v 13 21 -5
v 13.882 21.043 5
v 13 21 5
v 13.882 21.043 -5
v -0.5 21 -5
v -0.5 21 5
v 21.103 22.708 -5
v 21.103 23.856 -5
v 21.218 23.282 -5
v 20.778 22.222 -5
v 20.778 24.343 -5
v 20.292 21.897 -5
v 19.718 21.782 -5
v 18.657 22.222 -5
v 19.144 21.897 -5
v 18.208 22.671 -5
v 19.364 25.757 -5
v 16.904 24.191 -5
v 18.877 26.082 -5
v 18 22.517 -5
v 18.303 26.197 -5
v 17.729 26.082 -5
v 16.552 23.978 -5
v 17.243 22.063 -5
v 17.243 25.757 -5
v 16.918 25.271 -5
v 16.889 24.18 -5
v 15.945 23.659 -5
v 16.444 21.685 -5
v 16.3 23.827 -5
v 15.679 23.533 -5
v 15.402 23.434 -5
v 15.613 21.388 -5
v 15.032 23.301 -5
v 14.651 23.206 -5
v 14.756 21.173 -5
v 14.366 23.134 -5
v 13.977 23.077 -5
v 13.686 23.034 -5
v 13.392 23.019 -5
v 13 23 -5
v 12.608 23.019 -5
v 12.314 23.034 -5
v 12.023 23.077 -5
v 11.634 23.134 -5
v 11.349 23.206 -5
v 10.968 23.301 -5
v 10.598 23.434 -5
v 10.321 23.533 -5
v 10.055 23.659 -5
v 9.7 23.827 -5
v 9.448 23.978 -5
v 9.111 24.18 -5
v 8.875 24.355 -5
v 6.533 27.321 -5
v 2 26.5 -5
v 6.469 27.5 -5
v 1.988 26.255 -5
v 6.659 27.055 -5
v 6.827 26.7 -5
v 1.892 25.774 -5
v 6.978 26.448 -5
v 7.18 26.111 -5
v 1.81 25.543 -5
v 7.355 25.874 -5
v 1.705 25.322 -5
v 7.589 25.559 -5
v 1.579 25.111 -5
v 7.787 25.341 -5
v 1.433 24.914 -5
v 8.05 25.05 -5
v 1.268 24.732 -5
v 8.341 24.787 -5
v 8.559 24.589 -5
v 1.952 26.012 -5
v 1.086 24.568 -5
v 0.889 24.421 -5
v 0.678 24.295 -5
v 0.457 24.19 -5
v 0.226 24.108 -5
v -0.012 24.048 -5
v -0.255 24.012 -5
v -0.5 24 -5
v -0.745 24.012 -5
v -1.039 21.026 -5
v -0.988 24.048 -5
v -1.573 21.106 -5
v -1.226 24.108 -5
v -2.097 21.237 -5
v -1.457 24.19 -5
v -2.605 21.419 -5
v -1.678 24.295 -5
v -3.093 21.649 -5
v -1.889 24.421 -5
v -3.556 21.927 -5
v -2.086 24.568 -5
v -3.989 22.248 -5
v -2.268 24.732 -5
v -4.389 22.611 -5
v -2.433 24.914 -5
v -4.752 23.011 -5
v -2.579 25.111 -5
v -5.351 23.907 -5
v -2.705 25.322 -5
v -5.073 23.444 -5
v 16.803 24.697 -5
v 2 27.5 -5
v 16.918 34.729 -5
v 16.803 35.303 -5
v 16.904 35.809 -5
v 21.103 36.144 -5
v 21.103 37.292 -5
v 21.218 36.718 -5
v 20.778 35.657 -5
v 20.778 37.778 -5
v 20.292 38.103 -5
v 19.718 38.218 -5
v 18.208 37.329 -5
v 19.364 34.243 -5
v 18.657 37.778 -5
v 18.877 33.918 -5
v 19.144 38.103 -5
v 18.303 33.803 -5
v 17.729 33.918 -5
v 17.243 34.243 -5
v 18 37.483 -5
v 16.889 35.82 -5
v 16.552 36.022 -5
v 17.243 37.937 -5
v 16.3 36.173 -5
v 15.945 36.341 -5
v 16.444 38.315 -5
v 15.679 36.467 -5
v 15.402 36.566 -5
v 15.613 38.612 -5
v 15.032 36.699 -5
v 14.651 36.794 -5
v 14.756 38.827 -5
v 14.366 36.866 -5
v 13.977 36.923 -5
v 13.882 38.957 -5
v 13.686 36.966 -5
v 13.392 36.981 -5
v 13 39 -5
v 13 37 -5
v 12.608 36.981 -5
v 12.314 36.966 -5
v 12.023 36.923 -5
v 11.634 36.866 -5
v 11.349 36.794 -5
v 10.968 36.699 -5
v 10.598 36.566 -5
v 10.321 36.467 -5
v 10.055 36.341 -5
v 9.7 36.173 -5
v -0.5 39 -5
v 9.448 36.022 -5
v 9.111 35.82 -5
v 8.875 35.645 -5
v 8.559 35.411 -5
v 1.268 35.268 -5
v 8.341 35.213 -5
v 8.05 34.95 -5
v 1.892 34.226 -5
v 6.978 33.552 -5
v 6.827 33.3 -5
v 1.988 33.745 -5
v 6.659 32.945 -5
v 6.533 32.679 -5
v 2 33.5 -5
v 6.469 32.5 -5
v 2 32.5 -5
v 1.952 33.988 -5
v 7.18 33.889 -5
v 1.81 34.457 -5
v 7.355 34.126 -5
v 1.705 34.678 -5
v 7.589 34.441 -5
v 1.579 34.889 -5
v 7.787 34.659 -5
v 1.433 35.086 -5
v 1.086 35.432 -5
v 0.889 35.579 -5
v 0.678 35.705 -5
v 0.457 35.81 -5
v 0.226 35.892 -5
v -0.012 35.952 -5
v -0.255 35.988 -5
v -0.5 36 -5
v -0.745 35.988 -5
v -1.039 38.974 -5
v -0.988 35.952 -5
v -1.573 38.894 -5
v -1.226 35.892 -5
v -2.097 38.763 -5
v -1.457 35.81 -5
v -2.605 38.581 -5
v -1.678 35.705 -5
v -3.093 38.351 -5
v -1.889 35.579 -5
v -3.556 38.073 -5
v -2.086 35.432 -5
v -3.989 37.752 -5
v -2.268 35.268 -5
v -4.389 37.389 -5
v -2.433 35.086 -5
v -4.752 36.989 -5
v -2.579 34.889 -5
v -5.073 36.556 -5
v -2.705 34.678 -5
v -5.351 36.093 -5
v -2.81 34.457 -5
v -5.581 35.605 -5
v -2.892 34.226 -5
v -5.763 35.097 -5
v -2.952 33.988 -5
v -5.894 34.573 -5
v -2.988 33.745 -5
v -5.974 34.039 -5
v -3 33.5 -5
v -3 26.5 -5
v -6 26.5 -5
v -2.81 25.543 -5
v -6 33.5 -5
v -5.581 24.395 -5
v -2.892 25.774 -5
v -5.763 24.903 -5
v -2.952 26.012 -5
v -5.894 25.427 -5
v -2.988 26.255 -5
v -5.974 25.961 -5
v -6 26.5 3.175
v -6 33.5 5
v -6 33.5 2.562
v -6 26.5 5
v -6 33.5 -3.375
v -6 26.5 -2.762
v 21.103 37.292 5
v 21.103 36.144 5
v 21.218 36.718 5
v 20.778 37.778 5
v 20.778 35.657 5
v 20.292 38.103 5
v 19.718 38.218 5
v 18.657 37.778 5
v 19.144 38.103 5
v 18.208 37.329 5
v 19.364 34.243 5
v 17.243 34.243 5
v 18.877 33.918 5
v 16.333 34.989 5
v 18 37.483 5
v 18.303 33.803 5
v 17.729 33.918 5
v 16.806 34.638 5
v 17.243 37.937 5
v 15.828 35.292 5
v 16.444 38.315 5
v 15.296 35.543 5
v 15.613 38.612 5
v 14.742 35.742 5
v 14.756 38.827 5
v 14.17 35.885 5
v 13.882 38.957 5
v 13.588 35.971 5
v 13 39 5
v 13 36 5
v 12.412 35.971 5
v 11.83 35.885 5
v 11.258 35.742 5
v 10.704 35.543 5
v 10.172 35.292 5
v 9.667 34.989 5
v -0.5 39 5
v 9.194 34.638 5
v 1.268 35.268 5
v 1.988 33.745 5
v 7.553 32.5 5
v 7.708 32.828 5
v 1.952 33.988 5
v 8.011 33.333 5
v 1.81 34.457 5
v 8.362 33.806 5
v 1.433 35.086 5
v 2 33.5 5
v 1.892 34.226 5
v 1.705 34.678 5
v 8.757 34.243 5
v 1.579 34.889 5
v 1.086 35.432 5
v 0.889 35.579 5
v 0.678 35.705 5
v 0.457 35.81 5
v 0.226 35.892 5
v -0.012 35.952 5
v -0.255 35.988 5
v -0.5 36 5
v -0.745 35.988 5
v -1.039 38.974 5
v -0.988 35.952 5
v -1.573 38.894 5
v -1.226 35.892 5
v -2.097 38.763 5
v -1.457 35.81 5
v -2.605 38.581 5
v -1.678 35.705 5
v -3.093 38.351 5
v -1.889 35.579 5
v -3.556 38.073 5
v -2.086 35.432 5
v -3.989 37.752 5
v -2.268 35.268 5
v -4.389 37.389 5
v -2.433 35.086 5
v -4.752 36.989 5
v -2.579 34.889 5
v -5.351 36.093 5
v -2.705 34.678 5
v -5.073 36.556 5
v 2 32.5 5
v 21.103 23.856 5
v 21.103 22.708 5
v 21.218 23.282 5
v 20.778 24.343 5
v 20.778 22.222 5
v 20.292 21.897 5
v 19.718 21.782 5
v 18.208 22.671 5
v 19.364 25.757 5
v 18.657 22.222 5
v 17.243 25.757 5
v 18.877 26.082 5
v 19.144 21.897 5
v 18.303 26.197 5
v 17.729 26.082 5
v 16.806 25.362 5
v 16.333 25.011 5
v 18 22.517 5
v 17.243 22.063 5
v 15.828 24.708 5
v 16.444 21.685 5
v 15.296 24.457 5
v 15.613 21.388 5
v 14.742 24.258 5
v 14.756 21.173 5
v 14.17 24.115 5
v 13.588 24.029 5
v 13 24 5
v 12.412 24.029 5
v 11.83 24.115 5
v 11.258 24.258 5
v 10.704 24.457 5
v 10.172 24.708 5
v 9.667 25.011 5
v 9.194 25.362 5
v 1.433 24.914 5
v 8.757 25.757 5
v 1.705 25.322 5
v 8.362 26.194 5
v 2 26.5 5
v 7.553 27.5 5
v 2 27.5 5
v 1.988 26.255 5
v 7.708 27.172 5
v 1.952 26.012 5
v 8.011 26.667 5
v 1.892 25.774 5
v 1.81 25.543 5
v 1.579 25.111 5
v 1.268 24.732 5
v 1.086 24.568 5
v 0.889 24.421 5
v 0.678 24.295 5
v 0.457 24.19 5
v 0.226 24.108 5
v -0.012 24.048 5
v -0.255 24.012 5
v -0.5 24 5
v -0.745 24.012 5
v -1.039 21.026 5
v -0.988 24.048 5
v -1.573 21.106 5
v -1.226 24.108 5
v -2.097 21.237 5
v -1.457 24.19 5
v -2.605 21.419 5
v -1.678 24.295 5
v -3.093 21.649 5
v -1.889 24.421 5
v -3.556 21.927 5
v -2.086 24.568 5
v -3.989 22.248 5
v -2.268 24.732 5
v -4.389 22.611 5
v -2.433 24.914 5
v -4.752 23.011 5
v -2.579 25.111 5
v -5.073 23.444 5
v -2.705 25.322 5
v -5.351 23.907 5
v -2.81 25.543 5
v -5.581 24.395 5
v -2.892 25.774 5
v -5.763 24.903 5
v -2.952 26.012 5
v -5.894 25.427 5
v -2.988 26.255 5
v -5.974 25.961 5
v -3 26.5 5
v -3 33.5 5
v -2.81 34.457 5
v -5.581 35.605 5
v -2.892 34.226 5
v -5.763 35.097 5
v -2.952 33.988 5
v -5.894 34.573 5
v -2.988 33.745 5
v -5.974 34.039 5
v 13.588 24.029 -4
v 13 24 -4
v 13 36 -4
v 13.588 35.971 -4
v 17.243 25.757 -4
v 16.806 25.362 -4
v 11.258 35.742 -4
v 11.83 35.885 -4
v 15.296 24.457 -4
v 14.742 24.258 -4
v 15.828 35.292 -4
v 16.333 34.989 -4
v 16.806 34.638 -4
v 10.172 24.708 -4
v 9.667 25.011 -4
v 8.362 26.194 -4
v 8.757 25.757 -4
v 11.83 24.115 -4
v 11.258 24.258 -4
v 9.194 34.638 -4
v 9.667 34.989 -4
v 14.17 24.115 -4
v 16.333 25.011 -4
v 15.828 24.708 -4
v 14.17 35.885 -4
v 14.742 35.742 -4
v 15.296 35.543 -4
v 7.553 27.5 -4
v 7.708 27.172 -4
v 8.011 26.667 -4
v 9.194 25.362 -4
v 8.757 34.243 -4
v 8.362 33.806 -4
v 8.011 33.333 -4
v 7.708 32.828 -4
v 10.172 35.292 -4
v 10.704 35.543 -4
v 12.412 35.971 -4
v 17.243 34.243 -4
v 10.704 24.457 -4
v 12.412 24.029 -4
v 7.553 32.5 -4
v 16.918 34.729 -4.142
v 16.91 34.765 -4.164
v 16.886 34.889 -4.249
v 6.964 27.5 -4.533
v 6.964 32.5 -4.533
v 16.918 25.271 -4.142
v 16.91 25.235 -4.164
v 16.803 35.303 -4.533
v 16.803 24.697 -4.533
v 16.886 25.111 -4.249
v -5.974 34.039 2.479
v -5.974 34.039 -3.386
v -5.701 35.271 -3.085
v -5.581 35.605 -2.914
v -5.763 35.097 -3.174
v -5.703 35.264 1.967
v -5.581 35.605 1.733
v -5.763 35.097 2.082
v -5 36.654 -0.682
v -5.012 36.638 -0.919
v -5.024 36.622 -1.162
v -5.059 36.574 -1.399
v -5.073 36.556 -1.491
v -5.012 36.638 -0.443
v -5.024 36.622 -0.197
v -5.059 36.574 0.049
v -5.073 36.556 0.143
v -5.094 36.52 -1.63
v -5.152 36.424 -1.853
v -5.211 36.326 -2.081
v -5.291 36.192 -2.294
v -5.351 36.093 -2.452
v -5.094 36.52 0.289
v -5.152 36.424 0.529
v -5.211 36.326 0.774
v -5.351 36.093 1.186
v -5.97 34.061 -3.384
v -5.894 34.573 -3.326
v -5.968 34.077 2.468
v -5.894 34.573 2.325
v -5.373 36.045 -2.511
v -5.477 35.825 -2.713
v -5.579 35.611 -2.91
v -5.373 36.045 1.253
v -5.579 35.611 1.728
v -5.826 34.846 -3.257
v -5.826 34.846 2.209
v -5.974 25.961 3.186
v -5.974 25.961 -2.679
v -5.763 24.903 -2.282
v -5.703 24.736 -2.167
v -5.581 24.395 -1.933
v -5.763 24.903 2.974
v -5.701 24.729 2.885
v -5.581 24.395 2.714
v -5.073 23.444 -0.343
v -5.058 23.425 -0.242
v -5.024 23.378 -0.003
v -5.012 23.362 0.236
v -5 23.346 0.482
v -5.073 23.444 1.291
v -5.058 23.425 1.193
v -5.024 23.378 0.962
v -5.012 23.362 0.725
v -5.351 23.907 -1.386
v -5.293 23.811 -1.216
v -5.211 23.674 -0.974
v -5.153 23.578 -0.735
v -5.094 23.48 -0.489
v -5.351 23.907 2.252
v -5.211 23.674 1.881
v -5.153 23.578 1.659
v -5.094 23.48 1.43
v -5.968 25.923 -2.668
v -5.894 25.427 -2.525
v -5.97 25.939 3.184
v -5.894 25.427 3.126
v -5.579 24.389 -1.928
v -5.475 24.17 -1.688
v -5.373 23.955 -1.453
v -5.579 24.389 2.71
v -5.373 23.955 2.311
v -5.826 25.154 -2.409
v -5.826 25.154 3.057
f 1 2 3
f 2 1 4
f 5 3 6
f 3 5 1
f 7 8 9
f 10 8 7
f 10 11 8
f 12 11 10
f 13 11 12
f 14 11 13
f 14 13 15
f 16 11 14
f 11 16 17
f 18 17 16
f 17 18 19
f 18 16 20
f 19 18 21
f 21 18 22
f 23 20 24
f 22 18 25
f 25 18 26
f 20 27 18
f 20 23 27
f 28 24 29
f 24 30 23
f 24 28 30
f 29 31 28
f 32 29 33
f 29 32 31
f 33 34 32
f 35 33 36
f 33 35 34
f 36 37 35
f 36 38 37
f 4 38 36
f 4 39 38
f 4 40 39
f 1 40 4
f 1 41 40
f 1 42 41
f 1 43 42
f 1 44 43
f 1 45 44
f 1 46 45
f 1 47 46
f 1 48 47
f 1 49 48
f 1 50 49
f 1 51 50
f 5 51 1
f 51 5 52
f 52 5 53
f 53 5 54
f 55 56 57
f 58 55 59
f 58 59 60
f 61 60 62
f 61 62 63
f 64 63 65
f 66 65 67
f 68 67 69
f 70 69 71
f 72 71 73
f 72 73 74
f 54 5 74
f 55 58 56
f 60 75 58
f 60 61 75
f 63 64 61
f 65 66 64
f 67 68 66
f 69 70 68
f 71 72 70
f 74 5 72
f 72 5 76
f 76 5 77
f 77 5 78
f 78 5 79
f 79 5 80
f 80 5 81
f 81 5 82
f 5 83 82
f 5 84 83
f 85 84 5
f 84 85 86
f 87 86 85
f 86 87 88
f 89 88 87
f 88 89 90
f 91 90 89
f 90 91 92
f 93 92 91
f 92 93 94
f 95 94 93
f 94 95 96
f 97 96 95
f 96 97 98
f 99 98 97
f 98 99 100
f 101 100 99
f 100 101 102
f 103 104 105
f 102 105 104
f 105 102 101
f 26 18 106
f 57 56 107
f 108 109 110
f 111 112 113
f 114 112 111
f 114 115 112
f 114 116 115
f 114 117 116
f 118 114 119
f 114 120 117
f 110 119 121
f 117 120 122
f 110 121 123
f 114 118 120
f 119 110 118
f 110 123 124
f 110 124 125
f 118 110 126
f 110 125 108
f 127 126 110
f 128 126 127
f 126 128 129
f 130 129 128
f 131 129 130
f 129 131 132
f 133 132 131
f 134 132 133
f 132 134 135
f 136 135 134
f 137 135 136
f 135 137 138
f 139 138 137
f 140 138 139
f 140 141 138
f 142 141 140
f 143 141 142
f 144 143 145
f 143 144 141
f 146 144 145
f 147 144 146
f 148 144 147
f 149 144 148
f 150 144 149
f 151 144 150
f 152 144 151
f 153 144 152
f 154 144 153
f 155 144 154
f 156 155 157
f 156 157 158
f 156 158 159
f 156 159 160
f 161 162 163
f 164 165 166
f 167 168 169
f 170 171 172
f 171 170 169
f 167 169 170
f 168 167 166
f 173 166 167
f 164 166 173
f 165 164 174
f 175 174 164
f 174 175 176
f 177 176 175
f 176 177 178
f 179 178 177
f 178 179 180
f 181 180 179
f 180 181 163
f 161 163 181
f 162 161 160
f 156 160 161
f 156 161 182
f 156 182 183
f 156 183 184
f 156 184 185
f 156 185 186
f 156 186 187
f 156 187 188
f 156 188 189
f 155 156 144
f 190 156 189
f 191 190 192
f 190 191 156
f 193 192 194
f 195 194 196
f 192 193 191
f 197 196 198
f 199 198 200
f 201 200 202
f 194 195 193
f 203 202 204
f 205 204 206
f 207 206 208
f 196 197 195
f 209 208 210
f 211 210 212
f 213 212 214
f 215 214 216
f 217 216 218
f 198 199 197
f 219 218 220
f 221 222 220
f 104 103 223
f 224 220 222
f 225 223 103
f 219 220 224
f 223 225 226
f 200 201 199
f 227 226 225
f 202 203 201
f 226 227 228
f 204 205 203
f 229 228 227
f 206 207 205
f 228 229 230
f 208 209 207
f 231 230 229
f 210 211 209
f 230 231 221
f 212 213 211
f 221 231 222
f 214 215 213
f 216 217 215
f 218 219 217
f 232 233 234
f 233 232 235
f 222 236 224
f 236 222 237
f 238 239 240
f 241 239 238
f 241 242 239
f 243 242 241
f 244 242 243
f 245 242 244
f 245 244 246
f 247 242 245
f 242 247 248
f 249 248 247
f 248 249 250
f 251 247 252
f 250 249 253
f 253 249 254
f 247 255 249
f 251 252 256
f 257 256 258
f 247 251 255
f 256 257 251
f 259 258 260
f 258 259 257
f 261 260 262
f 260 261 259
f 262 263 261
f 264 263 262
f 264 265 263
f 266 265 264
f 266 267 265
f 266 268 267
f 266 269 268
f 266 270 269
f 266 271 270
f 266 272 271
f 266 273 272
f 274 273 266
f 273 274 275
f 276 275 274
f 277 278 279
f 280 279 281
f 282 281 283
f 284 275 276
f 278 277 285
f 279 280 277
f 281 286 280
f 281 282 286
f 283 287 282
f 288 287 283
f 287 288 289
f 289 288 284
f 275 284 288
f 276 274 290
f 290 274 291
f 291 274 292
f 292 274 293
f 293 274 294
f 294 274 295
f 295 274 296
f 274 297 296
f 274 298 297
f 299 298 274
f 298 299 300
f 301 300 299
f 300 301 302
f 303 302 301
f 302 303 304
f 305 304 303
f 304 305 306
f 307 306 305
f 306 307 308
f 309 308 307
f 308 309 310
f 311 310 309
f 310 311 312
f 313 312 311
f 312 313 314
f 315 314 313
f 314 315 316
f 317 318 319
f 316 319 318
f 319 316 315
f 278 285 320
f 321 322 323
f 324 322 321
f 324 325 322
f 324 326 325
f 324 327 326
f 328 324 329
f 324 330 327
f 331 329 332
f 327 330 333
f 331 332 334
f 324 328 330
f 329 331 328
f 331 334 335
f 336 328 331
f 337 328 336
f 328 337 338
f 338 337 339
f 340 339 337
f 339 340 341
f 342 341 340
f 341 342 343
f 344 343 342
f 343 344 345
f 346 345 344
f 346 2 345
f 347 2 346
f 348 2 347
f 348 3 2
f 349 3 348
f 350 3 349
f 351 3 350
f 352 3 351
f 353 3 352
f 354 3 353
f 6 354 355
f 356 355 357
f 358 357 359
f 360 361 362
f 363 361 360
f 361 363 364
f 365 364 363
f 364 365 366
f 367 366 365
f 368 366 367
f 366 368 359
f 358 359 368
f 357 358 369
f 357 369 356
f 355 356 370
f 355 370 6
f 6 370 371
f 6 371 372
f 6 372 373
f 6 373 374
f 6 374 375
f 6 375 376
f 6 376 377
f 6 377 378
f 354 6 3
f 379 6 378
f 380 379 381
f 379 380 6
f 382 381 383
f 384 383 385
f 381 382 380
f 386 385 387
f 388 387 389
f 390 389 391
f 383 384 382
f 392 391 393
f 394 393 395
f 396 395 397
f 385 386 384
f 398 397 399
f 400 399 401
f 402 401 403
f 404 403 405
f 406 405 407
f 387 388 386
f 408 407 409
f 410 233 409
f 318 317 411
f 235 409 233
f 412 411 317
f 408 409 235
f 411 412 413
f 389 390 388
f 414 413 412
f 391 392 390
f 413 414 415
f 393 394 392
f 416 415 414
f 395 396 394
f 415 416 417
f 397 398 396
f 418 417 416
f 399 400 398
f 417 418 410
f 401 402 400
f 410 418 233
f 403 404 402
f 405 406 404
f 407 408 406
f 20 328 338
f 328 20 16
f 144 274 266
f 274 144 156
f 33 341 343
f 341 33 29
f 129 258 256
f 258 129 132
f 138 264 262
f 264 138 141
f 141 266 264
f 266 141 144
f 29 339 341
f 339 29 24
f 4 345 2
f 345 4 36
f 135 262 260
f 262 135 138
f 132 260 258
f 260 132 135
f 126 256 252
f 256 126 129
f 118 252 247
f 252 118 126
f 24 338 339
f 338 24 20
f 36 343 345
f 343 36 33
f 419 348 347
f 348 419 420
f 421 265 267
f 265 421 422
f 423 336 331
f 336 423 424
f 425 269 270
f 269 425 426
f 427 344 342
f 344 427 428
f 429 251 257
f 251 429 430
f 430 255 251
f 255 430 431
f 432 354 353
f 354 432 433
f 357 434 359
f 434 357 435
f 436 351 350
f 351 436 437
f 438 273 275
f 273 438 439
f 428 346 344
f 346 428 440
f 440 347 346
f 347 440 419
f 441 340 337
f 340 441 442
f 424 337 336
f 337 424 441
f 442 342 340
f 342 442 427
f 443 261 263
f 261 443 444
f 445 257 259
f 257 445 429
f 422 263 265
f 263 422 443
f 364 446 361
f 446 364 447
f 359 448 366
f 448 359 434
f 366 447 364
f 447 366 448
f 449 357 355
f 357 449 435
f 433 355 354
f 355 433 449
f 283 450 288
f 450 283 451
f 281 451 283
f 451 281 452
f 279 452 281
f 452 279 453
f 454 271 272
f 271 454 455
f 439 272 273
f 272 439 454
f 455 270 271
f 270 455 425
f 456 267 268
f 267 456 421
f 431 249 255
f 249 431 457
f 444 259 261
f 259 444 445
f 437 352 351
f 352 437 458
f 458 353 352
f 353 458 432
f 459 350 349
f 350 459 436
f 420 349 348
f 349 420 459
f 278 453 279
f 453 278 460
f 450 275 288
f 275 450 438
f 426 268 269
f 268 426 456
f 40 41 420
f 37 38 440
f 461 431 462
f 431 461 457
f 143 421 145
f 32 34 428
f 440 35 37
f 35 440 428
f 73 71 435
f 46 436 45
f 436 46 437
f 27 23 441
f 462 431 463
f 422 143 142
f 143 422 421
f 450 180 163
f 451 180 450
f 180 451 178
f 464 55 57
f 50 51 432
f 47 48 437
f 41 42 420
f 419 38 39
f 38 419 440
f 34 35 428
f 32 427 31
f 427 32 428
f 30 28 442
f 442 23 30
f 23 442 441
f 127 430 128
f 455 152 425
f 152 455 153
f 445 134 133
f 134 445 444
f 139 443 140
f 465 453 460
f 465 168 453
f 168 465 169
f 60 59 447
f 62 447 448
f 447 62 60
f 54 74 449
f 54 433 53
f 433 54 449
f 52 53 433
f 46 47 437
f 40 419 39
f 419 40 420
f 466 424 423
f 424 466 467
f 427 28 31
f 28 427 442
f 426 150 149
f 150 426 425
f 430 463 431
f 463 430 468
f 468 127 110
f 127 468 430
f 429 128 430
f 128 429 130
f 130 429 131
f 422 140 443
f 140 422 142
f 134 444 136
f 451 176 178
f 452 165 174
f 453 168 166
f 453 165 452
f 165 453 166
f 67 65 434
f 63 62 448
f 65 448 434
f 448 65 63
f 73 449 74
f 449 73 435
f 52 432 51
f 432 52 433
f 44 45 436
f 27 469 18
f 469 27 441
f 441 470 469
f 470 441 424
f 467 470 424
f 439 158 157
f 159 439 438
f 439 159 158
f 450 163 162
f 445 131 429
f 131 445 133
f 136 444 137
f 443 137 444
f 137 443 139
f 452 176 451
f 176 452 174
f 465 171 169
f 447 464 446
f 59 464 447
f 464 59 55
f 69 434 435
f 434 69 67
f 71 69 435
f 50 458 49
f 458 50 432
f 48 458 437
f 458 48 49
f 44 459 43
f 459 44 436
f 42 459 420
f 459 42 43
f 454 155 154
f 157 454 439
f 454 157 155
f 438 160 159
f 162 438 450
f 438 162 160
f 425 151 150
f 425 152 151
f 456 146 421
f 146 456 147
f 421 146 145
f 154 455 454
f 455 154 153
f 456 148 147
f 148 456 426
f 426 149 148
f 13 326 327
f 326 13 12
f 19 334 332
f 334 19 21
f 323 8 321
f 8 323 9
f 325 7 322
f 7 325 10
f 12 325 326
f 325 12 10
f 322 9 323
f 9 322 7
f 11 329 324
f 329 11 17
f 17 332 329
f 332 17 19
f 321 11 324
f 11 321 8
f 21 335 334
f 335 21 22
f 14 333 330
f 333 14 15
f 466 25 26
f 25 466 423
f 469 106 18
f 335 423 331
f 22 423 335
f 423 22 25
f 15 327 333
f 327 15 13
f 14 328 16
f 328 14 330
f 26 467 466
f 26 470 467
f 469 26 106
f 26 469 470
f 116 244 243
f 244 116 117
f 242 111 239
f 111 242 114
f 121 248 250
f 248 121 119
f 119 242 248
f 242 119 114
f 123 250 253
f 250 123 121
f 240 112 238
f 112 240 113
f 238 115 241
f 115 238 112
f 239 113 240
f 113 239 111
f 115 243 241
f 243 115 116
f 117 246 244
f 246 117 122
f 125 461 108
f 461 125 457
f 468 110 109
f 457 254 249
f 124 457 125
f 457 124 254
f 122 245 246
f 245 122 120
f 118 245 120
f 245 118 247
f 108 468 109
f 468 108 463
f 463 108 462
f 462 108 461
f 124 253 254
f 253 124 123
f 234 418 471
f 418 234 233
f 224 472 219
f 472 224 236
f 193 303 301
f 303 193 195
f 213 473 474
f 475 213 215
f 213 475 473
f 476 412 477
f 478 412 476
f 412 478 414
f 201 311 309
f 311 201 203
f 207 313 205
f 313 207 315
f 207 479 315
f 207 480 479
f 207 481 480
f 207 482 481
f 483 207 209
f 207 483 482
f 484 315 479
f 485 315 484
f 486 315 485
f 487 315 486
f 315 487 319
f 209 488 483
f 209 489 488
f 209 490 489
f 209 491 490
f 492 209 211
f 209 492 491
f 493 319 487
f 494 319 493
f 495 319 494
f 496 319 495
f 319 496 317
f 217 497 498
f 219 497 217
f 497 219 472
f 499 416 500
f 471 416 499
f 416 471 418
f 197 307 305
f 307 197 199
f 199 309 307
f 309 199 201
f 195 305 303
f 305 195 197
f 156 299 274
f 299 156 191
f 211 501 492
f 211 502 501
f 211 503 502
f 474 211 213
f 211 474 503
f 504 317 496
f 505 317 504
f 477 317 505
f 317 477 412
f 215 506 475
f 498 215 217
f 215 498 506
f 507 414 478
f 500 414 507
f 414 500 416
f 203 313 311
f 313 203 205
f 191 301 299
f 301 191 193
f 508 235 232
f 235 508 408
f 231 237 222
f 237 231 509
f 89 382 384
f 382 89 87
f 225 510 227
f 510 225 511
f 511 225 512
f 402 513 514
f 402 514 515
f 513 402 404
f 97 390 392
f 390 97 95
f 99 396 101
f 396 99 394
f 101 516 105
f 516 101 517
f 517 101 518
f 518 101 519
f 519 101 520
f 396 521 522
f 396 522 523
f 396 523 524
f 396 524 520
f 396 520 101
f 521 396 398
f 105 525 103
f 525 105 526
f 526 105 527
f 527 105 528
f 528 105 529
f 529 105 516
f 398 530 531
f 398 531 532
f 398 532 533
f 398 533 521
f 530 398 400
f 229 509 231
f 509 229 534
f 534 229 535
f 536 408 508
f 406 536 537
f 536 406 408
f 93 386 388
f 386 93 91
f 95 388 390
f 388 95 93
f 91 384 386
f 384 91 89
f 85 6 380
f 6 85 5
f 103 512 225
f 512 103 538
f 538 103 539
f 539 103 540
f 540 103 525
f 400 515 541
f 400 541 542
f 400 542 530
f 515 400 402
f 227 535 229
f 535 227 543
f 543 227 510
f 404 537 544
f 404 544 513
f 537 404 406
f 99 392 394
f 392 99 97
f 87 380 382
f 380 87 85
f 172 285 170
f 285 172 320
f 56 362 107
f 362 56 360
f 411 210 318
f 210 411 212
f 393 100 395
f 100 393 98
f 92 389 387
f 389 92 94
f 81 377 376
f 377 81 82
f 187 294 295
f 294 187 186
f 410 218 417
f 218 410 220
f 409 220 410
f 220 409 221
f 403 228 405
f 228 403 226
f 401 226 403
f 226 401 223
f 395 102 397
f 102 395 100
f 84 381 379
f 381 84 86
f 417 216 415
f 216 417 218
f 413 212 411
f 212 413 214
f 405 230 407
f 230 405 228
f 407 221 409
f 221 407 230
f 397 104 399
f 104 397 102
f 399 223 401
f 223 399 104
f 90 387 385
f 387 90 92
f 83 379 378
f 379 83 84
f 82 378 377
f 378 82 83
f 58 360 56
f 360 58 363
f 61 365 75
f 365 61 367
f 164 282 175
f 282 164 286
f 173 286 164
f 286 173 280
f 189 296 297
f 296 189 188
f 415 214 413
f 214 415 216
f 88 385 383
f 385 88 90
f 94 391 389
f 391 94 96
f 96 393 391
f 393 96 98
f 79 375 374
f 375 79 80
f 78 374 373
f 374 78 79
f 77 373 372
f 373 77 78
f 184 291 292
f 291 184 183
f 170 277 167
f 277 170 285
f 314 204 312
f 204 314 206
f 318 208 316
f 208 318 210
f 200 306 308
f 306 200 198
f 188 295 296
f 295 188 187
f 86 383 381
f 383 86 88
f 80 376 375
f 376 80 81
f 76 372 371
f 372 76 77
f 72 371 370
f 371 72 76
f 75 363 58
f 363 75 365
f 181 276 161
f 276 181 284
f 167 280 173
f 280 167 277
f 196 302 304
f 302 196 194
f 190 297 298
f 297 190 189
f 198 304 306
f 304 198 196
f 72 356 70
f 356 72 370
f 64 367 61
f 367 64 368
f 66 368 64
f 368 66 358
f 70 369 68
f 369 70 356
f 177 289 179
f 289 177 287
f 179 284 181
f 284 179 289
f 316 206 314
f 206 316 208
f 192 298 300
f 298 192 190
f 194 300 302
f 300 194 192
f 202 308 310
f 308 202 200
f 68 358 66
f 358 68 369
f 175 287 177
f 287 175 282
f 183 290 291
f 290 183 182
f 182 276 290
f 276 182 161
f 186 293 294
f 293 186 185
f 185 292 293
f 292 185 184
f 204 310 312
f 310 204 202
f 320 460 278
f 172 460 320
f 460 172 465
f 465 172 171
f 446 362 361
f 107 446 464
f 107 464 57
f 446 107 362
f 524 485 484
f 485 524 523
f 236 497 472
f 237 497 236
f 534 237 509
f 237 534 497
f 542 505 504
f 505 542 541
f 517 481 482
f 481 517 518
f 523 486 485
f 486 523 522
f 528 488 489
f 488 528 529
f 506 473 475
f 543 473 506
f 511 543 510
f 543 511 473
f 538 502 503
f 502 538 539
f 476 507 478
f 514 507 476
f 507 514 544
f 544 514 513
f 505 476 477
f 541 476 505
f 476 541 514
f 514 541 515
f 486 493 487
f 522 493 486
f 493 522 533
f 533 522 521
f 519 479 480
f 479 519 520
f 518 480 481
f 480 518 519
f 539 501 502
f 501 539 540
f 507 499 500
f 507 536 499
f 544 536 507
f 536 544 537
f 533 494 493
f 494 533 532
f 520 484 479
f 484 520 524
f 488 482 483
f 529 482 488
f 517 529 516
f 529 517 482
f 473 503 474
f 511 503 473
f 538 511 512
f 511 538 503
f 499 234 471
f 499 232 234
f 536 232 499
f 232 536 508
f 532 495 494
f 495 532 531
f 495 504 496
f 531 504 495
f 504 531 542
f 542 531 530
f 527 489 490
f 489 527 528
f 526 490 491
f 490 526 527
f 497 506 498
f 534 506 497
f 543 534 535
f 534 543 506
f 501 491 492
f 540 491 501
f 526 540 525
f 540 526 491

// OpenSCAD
// file: cylinder_clip.scad
use <../utilities.scad>;

module cylinder_clip(r=1,t=3,opening_angle=120,wing_length=2,wing_angle=45,flat_w=10,flat_t=3,h=10,$fn=$fn){
	union(){
		difference(){
			hull(){
				cylinder(r=r+t,$fn=$fn,h=h);
				translate([-flat_w/2,-r-flat_t,0]) cube([flat_w,0.1,h]);
			}
			cylinder(r=r,$fn=$fn,h=99999,center=true);
			cylinder(r1=r+2,r2=r,$fn=$fn,h=2,center=true);
			scale([tan(opening_angle/2),1,1]) rotate([0,0,45]) translate([0,0,-1]) cube([1,1,1]*9999);
		}
		reflect([1,0,0]) translate([sin(opening_angle/2),cos(opening_angle/2),0]*(r+t/2)) hull() repeat([sin(wing_angle),cos(wing_angle),0]*wing_length,2)
			cylinder(r=t/2,h=h,$fn=16);
			
	}
}

//cylinder_clip(r=3,t=2,flat_w=6);
union(){
	cylinder_clip(r=21,t=4.5,flat_t=10,opening_angle=100,$fn=64);
	translate([-5,-22-5-20,0]) cube([10,20,10]);
}
// file: ../standard_optomechanics/cylinder_clamp.scad
use <../utilities.scad>;
d=0.05;

//for 1 inch/25mm post clamp, an inner radius of 12.8 is good.
	
module cylinder_clamp(
	inner_r=12.8, //radius of the cylinder being clamped (ish!)
	clamp_h=11, //thicknedess of the clamp along the cylinder axis
	clamp_t=4, //thickness of the clamp radially
	flat_t=8, //how thick the bottom of the clamp is (often need to allow for the mounting bolt head here)
	flat_width=15, //width of the flat base
	mounting_bolt=4, //nominal size of mounting bolt (default is 4 for M4, 0 to disable)
	nut_trap=false,
	bevel_top=0.5, //size of 45 degree bevel on top surface
	bevel_bottom=0.8 //size of 45 degree bevel on bottom of hole
	){
	assign(
		post_r = inner_r, //poor initial choice of name!
		bolt_flat_w=10, //width of the region where the bolt is
		gap_w=3 //size of the gap that is squeezed by the bolt
	)
	difference(){
		hull(){
			cylinder(h=clamp_h,r=post_r+clamp_t,center=true,$fn=48);
			translate([0,-post_r-flat_t/2,0]) cube([flat_width,flat_t,clamp_h],center=true);
			translate([0,post_r+bolt_flat_w/2,0]) cube([12,bolt_flat_w,clamp_h],center=true);
		}
	
		cylinder(h=9999,r=post_r,center=true,$fn=48); //cylinder being clamped
		//bevels, top and bottom
		translate([0,0,-clamp_h/2]) cylinder(r1=post_r+3*bevel_bottom,r2=post_r-bevel_bottom,h=4*bevel_bottom,center=true);
		translate([0,0,clamp_h/2]) cylinder(r2=post_r+3*bevel_top,r1=post_r-bevel_top,h=4*bevel_top,center=true);
		//gap (squeezed by bolt)
		translate([0,999,0]) cube([gap_w,999*2,999],center=true); //gap
	
		//clamping bolt
		translate([gap_w/2+2,post_r+bolt_flat_w/2,0]) rotate([0,0,-90]) nut_y(4,h=999,shaft=true);
		translate([-gap_w/2-2,post_r+bolt_flat_w/2,0]) rotate([0,0,90]) cylinder_with_45deg_top(r=4,h=999,$fn=16); //counterbore for nut head
	
		if(mounting_bolt > 0){
			//mounting bolt
			translate([0,-post_r-4.5,0]) rotate([-90,0,0]){
				intersection(){
					rotate([90,0,0])
						if(nut_trap){
							nut_y(mounting_bolt,fudge=1.15,shaft=true,h=999);
						}else{
							screw_y(mounting_bolt,fudge=1.07,shaft=true,h=999);
						}
					cube([inner_r*2,inner_r*2,clamp_h*2],center=true);
				}
			}
		}
		//in the case of thick clamps with thin flats, this keeps the bottom flat
		translate([0,-inner_r-flat_t-999,0]) cube([9999,999*2,9999],center=true);
	}
}

module cylinder_clamp_v(
	inner_r=12.8, //radius of the cylinder being clamped (ish!)
	clamp_h=10, //width of the clamp along the cylinder (y) axis
	clamp_t=4, //thickness of the clamp radially
	flat_t=8, //how thick the bottom of the clamp is (often need to allow for the mounting bolt head here)
	flat_width=15, //width of the flat base
	mounting_bolt=4, //nominal size of mounting bolt (default is 4 for M4, 0 to disable)
	bevel=0.5 //put a 45 degree bevel on the edges of the hole
	){
	assign(
		post_r = inner_r, //poor initial choice of name!
		bolt_flat_w=11, //width of the region where the bolt is
		gap_w=2*inner_r*sin(45/2),//sin(acos(1-(9/2-4/2*1.22)/inner_r))*inner_r //size of the gap that is squeezed by the bolt
		bolt_z = inner_r+4/2*1.22+d //position of bolt (so bolt just clears the cylinder we're clamping
	)assign( //the second assign statement allows us to use gap_w
		bolt_span=gap_w+4+d//max(2*inner_r*sin(acos(1-(9/2-4/2*1.22)/inner_r)), gap_w+4)
	)
	difference(){
		hull(){
			rotate([90,0,0]) cylinder(h=clamp_h,r=inner_r+clamp_t,center=true,$fn=48);
			translate([0,0,-inner_r-flat_t/2]) cube([flat_width,clamp_h,flat_t],center=true);
			translate([0,0,bolt_z]) cube([gap_w+9,clamp_h,bolt_flat_w],center=true);
		}
	
		cylinder_with_45deg_top(h=9999,r=post_r,center=true,$fn=48); //cylinder being clamped
		reflect([0,1,0]) translate([0,clamp_h/2,0]) rotate([90,0,0]) cylinder(r1=post_r+3*bevel,r2=post_r-bevel,h=4*bevel,center=true); //bevel
		translate([0,0,999]) cube([gap_w,999,999*2],center=true); //gap
	
		//clamping bolt
		translate([bolt_span/2,0,bolt_z]) rotate([0,0,-90]) nut_y(4,h=999,shaft=true);
		translate([-bolt_span/2,0,bolt_z]) rotate([0,0,90]) cylinder_with_45deg_top(r=4,h=999,$fn=16); //counterbore for nut head
	
		if(mounting_bolt > 0){
			//mounting bolt
			translate([0,0,-post_r-4.5]){
				cylinder(r=mounting_bolt*1.1,h=post_r,$fn=16);
				cylinder(r=mounting_bolt/2*1.22,h=flat_t*2,center=true,$fn=16);
			}
		}
		translate([0,0,-inner_r-flat_t-999]) cube([9999,9999,999*2],center=true);
	}
}

translate([0,30,0]) cylinder_clamp_v(30.5/2, 10, flat_width=24, mounting_bolt=4, flat_t=8);

cylinder_clamp(30.5/2, flat_width=24, mounting_bolt=4, flat_t=8,nut_trap=true);
// main file
use <../utilities.scad>;
use <../standard_optomechanics/cylinder_clamp.scad>;
use <./cylinder_clip.scad>;

rack_r = 10/2+0.3;
lock_r = 6;
h=10;
lock_pos = [13,30,-h/2];

union(){/*
    cylinder_clamp(
        inner_r=rack_r, //radius of the cylinder being clamped (ish!)
        clamp_h=h, //thicknedess of the clamp along the cylinder axis
        clamp_t=2, //thickness of the clamp radially
        flat_t=2, //how thick the bottom of the clamp is (often need to allow for the mounting bolt head here)
        flat_width=0, //width of the flat base
        mounting_bolt=0, //nominal size of mounting bolt (default is 4 for M4, 0 to disable)
        nut_trap=false
        );
    
    hull(){
        translate([-6,rack_r+9,-h/2]) cube([4.5,1,h]);
        translate([-4.5,lock_pos[1],-h/2]) cube([3,3,h]);
    }*/
    translate(lock_pos)rotate(-90){
        $fn=64;
        rack_r = 10/2-0.1;
        t=3;
        standoff = lock_pos[0];
        cr = 2.5;

        difference(){
            cylinder_clip(r=lock_r,t=t,flat_t=standoff,flat_w=2*lock_r+2*t,h=h,opening_angle=90);
  
            reflect([1,0,0]) translate([-lock_r+cr,-lock_r-standoff+t+cr,-1]) difference(){
                mirror([1,0,0]) mirror([0,1,0]) cube([999,999,999]);
                cylinder(r=t+cr,h=999,center=true);
            }
            hull() reflect([1,0,0]) translate([-lock_r+cr,-lock_r-standoff+t+cr,0]) cylinder(r=cr,h=999,center=true);
            translate([-2.5,-lock_r-standoff+2*t,-1]) cube([5,9999,9999]);
            
            #translate([0,-standoff-rack_r-lock_r+1,rack_r]) rotate([0,90-5,0]) cylinder(r=rack_r,h=999,center=true);
        }
    }
}
